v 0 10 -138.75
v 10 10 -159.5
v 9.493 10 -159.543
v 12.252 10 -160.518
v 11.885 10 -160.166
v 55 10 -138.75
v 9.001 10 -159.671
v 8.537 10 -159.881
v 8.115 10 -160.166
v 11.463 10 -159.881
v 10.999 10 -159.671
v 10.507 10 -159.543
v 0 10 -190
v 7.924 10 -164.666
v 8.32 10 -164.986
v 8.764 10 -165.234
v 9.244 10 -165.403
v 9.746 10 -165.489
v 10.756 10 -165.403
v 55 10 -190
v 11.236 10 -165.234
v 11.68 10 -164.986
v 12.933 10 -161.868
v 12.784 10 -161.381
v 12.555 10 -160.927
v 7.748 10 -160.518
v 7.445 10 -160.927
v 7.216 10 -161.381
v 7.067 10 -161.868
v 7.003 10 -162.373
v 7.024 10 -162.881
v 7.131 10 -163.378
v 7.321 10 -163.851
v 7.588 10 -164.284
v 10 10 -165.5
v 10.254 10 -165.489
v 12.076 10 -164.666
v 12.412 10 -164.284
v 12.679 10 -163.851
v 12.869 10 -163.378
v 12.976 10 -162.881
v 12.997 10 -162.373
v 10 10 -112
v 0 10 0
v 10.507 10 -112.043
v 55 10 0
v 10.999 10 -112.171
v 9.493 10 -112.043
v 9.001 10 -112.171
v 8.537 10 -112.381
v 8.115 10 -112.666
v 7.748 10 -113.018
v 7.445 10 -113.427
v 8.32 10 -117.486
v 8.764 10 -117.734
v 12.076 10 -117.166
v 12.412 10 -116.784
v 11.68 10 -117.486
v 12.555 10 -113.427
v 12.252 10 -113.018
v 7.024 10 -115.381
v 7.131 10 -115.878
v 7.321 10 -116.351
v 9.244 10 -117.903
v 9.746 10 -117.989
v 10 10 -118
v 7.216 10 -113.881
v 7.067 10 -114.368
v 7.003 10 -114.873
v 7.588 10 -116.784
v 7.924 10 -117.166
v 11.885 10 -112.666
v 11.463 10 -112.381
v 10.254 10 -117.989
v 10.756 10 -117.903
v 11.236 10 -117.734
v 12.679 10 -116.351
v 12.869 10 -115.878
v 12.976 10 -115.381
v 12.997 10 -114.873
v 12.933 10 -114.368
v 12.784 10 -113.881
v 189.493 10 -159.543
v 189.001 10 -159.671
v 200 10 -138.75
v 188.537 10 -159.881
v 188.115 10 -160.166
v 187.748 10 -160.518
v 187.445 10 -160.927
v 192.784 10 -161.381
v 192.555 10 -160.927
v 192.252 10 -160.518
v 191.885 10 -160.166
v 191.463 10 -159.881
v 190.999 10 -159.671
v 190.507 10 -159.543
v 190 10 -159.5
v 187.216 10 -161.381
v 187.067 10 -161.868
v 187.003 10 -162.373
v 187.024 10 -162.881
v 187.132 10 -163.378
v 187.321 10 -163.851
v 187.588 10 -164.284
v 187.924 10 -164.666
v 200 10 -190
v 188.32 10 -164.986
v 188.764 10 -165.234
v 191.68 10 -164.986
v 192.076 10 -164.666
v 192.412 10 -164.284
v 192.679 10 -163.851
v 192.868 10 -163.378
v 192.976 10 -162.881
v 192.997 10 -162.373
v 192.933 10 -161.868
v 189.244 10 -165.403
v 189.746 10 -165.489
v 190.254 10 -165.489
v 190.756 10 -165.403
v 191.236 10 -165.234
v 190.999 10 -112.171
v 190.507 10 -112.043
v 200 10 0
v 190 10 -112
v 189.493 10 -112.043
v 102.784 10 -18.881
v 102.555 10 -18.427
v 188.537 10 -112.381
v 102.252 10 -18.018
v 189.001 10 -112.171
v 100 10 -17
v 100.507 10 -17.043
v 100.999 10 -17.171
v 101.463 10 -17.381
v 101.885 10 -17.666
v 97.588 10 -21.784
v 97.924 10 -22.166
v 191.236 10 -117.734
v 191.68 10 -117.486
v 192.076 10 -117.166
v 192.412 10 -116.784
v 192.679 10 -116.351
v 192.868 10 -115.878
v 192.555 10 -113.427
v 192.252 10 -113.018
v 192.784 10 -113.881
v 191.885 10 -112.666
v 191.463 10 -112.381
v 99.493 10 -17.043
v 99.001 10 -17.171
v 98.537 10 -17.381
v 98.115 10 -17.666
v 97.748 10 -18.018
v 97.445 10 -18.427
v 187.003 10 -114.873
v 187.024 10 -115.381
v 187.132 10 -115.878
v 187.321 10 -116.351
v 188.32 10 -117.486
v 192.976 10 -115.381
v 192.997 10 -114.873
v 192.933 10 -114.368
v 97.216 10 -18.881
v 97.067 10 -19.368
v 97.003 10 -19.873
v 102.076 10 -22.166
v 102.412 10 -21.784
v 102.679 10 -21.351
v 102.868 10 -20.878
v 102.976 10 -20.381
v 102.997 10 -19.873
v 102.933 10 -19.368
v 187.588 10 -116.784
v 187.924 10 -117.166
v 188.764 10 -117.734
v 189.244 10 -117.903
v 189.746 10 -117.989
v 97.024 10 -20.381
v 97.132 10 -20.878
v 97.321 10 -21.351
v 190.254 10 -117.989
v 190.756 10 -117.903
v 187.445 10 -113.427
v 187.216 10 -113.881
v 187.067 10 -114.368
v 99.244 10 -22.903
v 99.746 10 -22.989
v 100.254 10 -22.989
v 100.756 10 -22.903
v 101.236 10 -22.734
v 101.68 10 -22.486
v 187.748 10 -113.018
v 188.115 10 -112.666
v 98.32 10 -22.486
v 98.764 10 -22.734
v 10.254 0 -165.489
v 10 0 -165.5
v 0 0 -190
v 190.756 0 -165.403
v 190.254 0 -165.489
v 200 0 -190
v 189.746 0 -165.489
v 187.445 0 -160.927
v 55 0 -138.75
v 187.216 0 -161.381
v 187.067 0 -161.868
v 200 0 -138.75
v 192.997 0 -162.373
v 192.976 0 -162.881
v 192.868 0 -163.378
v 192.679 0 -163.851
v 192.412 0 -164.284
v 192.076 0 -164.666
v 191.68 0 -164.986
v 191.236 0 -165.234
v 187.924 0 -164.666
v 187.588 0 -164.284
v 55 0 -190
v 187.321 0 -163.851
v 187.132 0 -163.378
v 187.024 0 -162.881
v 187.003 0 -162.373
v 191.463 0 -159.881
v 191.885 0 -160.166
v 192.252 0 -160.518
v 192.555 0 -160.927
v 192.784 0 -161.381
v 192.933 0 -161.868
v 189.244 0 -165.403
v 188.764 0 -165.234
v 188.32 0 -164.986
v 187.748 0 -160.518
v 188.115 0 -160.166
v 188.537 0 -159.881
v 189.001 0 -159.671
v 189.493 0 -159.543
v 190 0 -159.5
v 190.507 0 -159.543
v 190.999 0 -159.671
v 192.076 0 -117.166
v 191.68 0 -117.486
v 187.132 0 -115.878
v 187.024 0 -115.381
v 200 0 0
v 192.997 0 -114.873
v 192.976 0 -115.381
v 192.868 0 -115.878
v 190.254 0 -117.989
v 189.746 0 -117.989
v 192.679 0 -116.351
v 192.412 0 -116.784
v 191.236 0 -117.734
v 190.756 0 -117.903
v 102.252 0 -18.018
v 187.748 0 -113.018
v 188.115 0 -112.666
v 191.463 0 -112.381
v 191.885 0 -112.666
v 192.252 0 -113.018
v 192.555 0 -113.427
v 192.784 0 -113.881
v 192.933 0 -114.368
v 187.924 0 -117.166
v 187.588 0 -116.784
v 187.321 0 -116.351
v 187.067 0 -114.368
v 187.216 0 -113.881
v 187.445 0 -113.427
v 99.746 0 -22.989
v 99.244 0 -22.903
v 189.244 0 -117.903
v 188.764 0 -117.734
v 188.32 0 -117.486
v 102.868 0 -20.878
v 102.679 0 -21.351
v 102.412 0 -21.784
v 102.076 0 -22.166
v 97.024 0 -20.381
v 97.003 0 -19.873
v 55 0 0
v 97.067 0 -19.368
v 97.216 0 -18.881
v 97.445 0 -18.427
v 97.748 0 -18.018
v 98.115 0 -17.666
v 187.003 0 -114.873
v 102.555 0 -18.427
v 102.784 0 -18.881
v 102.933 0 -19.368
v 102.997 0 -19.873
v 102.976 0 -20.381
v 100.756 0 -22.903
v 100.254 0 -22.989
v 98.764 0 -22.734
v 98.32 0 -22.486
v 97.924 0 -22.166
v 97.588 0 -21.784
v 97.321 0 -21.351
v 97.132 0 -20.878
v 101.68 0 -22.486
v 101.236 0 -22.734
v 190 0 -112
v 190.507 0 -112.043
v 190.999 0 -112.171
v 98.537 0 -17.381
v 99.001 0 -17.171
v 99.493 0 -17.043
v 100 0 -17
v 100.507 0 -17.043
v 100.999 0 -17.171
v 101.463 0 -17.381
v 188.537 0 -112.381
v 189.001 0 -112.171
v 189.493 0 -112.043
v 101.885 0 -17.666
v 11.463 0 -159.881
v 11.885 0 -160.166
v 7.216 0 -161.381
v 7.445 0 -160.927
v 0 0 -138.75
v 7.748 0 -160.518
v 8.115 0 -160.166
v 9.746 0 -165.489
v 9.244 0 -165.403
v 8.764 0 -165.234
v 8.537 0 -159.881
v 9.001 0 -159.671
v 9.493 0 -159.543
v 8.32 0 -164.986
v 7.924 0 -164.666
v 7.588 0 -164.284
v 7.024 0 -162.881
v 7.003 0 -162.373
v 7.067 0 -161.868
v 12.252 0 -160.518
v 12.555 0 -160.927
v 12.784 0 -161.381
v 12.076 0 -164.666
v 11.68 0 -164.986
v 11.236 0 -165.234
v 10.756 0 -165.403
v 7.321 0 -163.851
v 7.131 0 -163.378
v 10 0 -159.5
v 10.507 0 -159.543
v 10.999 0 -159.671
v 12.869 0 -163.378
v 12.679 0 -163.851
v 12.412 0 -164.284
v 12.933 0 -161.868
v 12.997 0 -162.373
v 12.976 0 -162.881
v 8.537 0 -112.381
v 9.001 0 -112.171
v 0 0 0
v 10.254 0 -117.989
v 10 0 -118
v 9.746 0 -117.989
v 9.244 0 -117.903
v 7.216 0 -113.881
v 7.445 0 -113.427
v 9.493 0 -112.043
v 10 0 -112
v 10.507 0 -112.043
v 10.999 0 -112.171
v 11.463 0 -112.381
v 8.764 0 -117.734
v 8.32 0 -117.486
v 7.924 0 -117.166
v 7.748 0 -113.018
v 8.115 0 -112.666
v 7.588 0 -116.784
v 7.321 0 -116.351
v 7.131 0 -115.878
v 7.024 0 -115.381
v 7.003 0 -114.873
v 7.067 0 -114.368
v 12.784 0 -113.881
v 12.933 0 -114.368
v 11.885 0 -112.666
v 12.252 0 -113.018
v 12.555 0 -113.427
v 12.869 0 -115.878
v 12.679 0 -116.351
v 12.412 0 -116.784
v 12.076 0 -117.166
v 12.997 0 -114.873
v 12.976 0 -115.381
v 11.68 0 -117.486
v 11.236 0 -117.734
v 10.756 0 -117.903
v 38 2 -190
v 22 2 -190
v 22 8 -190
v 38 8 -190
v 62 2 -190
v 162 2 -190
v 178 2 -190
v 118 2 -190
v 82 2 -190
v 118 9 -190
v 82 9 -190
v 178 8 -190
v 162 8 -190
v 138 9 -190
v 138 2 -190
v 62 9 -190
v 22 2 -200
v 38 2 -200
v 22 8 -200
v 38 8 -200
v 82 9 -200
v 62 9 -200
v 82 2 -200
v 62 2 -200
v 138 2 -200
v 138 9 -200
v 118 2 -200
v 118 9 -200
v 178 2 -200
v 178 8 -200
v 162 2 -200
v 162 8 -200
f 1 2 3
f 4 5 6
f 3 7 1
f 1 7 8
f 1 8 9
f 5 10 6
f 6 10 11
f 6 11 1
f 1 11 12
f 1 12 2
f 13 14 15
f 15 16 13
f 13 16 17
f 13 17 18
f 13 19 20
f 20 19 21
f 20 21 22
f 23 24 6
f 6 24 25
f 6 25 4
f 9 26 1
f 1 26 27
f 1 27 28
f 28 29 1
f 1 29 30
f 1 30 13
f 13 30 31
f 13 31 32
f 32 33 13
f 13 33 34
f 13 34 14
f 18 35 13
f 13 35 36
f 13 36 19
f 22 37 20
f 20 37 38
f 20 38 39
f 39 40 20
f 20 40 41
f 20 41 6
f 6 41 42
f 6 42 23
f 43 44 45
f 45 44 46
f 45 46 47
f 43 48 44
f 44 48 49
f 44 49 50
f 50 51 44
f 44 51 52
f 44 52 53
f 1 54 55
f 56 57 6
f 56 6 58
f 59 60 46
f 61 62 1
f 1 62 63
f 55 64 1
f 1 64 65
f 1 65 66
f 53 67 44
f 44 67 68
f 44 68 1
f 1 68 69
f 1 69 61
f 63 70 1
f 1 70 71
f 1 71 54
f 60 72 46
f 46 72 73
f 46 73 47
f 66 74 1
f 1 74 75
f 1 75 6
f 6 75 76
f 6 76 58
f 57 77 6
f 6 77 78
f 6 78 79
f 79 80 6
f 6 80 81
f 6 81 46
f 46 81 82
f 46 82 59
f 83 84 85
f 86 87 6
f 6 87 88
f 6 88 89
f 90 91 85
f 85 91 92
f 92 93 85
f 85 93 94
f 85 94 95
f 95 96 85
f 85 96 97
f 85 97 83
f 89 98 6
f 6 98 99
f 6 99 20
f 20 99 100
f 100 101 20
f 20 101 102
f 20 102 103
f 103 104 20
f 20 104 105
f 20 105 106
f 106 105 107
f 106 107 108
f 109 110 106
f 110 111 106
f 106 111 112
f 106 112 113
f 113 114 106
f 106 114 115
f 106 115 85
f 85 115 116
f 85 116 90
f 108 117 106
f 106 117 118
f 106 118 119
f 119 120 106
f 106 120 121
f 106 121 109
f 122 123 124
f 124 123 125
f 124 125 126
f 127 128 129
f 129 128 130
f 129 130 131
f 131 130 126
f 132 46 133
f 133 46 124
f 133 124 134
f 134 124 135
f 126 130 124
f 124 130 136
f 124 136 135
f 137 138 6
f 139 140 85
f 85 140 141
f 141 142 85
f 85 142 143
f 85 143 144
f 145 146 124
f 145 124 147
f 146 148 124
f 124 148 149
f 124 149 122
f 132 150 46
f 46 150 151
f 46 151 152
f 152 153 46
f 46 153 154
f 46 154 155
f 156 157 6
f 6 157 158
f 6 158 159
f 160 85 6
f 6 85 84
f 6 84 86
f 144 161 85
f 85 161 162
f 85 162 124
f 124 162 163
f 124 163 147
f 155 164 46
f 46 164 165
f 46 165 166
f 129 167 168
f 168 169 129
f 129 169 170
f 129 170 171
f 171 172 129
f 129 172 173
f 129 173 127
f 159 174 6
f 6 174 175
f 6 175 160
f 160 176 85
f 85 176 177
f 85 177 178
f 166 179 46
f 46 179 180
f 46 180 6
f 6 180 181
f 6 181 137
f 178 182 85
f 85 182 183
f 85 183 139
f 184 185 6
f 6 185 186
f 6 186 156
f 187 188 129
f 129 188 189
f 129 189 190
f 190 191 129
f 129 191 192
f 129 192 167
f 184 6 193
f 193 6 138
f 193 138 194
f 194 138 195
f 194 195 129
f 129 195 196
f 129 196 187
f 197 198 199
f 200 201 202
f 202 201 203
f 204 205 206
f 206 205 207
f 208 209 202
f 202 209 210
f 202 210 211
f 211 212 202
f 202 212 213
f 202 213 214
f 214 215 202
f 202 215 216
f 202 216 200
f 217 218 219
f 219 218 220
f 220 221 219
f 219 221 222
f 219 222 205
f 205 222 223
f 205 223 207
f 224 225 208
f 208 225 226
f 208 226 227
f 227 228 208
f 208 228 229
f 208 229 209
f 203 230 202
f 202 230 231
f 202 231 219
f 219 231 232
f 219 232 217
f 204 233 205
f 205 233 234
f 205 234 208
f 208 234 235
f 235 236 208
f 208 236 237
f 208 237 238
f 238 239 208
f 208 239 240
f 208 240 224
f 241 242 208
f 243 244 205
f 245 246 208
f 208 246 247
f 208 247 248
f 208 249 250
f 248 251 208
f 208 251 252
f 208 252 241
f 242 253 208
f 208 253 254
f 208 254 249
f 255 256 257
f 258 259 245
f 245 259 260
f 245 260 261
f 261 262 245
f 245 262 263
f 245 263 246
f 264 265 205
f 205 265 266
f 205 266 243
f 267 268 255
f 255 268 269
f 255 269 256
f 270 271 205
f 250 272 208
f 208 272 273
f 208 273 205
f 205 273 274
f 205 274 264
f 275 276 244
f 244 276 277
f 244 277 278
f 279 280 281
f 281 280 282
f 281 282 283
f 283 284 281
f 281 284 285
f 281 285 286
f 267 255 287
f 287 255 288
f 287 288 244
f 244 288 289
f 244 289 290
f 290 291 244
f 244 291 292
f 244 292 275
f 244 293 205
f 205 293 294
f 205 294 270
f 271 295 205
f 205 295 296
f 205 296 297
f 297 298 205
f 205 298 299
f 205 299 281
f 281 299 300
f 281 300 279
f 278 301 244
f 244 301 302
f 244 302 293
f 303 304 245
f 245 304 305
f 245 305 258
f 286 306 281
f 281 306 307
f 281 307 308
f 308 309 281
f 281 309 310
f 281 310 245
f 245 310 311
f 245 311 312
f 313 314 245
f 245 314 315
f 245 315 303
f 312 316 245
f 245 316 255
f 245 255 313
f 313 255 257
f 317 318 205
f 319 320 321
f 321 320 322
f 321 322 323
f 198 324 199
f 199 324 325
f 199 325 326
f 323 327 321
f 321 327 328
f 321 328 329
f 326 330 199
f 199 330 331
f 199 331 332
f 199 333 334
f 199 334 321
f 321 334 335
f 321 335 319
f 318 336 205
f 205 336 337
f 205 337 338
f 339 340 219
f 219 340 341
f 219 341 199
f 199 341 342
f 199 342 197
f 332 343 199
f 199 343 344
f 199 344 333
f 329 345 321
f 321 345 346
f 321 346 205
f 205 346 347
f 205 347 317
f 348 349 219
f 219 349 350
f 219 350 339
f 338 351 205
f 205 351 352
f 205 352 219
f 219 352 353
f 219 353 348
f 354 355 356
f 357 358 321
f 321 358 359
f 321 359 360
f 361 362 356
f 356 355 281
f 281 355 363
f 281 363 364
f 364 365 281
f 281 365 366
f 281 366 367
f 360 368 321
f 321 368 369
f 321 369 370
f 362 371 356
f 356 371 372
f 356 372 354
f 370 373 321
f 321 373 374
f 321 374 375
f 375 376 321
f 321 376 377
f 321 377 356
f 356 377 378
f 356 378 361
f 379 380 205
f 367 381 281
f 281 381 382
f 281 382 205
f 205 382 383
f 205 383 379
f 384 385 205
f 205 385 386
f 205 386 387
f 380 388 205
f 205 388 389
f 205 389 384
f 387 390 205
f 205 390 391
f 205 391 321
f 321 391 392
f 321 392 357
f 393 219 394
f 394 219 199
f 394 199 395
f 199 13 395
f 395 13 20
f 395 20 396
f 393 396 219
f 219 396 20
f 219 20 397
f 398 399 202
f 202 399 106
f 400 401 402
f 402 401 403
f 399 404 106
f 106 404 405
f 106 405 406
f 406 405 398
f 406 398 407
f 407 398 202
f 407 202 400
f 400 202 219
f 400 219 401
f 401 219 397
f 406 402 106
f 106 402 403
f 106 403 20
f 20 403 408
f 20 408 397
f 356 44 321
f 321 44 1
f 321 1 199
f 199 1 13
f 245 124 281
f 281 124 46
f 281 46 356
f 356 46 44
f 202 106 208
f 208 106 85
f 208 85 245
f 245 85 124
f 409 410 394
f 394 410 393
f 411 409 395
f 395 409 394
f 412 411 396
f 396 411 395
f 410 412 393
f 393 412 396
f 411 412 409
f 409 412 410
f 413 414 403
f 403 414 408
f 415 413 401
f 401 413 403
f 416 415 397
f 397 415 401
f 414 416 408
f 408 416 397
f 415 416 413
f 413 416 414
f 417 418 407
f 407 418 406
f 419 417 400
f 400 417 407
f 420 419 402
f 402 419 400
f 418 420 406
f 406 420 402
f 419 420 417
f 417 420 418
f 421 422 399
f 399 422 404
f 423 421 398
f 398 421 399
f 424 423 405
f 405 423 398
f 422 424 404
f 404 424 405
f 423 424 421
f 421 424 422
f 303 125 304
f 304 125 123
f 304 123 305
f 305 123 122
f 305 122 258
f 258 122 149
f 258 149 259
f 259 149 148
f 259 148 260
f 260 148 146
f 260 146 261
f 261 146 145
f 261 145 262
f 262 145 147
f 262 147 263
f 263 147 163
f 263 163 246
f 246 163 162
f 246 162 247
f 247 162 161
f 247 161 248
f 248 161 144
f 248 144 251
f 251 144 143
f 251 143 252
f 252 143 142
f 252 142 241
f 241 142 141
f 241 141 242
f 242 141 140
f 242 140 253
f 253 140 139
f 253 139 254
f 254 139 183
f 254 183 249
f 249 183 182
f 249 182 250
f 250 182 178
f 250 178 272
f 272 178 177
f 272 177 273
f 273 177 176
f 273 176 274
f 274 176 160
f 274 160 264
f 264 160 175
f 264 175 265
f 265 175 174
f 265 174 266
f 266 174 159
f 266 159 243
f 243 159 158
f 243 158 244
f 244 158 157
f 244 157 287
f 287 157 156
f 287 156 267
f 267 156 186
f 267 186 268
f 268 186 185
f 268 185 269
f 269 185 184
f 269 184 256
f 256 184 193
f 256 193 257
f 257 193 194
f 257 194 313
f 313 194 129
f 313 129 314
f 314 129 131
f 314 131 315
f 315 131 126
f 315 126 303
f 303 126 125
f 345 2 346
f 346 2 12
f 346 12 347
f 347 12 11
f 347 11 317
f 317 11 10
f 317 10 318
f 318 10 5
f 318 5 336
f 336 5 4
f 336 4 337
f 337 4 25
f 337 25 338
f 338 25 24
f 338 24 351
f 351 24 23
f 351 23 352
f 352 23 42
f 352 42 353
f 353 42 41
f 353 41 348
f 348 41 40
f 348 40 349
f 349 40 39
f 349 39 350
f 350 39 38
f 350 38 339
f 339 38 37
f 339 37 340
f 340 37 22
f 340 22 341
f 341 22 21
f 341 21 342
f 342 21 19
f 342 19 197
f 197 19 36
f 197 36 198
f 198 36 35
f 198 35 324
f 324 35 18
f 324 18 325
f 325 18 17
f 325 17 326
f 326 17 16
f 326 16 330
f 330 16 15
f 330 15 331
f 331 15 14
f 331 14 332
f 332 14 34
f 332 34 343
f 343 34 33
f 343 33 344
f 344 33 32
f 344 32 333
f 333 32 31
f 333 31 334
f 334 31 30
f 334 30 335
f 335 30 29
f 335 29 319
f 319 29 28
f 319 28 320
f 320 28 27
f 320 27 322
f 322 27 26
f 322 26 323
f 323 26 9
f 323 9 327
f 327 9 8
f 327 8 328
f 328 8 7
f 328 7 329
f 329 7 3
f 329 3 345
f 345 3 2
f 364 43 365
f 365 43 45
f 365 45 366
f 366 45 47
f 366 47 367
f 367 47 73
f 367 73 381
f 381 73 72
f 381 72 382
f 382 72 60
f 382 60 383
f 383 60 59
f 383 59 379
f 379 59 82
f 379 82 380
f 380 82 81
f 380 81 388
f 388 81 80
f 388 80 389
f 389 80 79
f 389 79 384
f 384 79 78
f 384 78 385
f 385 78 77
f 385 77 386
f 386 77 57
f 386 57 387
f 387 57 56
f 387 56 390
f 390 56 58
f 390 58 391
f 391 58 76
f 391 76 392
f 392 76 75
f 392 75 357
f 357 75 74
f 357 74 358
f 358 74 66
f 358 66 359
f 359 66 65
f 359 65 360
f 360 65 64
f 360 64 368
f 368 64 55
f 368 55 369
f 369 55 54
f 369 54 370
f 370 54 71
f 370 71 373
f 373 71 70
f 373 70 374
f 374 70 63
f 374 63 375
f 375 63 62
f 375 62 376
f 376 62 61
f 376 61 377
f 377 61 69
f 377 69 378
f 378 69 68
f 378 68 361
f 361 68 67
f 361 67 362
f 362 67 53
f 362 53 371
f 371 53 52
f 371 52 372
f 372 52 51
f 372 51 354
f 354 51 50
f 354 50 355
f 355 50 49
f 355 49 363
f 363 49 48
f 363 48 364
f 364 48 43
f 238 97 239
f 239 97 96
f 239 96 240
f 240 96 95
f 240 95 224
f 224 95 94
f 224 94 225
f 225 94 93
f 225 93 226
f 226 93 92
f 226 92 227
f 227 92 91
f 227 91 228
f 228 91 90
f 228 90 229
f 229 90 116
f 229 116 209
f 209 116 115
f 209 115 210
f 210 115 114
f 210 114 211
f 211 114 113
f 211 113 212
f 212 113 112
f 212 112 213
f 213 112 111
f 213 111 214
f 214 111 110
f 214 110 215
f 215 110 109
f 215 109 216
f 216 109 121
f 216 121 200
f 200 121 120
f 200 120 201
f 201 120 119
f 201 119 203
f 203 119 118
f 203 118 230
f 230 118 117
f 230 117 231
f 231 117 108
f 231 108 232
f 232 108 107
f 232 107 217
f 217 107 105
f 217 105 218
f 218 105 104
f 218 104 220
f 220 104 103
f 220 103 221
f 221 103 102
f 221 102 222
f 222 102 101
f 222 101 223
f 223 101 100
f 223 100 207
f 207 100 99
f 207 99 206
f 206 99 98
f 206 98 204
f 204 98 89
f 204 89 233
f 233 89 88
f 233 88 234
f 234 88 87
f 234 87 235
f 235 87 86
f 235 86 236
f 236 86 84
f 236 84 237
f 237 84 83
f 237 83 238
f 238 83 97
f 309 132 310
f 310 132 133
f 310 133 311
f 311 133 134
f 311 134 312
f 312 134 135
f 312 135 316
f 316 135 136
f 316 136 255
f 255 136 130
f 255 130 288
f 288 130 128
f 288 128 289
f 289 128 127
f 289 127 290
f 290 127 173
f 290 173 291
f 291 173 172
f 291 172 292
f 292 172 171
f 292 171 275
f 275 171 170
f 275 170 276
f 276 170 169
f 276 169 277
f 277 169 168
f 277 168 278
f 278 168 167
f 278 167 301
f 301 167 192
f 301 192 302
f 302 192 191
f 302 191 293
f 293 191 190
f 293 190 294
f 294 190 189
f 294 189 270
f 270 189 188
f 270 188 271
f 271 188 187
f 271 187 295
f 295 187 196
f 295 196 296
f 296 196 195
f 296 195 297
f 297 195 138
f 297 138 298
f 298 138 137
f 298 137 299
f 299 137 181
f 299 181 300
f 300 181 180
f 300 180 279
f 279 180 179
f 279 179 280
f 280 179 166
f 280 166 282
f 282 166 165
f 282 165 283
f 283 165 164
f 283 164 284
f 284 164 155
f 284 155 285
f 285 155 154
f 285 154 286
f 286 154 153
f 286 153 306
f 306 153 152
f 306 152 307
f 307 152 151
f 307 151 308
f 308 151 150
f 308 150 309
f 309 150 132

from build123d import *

# Parameters (mm, degrees)
SKETCH1_W           = 200
SKETCH1_H           = 190
BOSS_EXTRUDE1_DEPTH = 10
SKETCH2_W           = 16
SKETCH2_H           = 6
SKETCH2_W_2         = 20
SKETCH2_H_2         = 7
BOSS_EXTRUDE2_DEPTH = 10
SKETCH3_R           = 3
CUT_EXTRUDE1_DEPTH  = 10
SKETCH4_R           = 3
CUT_EXTRUDE2_DEPTH  = 10


with BuildPart() as part:
    # Sketch1 → Boss-Extrude1 (new body)
    with BuildSketch(Plane(origin=(0, 0, 0), x_dir=(1, 0, 0), z_dir=(0, 1, 0))):
        with Locations((100, 95)):
            Rectangle(SKETCH1_W, SKETCH1_H)
    extrude(amount=BOSS_EXTRUDE1_DEPTH)

    # Sketch2 → Boss-Extrude2 (add)
    with BuildSketch(Plane(origin=(0, 0, -190), x_dir=(-1, 0, 0), z_dir=(0, 0, -1))):
        with Locations((-30, 5)):
            Rectangle(SKETCH2_W, SKETCH2_H)
        with Locations((-170, 5)):
            Rectangle(SKETCH2_W, SKETCH2_H)
        with Locations((-128, 5.5)):
            Rectangle(SKETCH2_W_2, SKETCH2_H_2)
        with Locations((-72, 5.5)):
            Rectangle(SKETCH2_W_2, SKETCH2_H_2)
    extrude(amount=BOSS_EXTRUDE2_DEPTH)

    # Sketch3 → Cut-Extrude1 (cut)
    with BuildSketch(Plane(origin=(0, 10, 0), x_dir=(1, 0, 0), z_dir=(0, 1, 0))):
        with Locations(Location((190, 162.5, 0), (0, 0, 270))):
            Circle(SKETCH3_R)
        with Locations(Location((190, 115, 0), (0, 0, 270))):
            Circle(SKETCH3_R)
        with Locations(Location((10, 162.5, 0), (0, 0, 90))):
            Circle(SKETCH3_R)
        with Locations(Location((10, 115, 0), (0, 0, 90))):
            Circle(SKETCH3_R)
    extrude(amount=-CUT_EXTRUDE1_DEPTH, mode=Mode.SUBTRACT)

    # Sketch4 → Cut-Extrude2 (cut)
    with BuildSketch(Plane(origin=(0, 10, 0), x_dir=(1, 0, 0), z_dir=(0, 1, 0))):
        with Locations(Location((100, 20, 0), (0, 0, 270))):
            Circle(SKETCH4_R)
    extrude(amount=-CUT_EXTRUDE2_DEPTH, mode=Mode.SUBTRACT)


solid = part.part
